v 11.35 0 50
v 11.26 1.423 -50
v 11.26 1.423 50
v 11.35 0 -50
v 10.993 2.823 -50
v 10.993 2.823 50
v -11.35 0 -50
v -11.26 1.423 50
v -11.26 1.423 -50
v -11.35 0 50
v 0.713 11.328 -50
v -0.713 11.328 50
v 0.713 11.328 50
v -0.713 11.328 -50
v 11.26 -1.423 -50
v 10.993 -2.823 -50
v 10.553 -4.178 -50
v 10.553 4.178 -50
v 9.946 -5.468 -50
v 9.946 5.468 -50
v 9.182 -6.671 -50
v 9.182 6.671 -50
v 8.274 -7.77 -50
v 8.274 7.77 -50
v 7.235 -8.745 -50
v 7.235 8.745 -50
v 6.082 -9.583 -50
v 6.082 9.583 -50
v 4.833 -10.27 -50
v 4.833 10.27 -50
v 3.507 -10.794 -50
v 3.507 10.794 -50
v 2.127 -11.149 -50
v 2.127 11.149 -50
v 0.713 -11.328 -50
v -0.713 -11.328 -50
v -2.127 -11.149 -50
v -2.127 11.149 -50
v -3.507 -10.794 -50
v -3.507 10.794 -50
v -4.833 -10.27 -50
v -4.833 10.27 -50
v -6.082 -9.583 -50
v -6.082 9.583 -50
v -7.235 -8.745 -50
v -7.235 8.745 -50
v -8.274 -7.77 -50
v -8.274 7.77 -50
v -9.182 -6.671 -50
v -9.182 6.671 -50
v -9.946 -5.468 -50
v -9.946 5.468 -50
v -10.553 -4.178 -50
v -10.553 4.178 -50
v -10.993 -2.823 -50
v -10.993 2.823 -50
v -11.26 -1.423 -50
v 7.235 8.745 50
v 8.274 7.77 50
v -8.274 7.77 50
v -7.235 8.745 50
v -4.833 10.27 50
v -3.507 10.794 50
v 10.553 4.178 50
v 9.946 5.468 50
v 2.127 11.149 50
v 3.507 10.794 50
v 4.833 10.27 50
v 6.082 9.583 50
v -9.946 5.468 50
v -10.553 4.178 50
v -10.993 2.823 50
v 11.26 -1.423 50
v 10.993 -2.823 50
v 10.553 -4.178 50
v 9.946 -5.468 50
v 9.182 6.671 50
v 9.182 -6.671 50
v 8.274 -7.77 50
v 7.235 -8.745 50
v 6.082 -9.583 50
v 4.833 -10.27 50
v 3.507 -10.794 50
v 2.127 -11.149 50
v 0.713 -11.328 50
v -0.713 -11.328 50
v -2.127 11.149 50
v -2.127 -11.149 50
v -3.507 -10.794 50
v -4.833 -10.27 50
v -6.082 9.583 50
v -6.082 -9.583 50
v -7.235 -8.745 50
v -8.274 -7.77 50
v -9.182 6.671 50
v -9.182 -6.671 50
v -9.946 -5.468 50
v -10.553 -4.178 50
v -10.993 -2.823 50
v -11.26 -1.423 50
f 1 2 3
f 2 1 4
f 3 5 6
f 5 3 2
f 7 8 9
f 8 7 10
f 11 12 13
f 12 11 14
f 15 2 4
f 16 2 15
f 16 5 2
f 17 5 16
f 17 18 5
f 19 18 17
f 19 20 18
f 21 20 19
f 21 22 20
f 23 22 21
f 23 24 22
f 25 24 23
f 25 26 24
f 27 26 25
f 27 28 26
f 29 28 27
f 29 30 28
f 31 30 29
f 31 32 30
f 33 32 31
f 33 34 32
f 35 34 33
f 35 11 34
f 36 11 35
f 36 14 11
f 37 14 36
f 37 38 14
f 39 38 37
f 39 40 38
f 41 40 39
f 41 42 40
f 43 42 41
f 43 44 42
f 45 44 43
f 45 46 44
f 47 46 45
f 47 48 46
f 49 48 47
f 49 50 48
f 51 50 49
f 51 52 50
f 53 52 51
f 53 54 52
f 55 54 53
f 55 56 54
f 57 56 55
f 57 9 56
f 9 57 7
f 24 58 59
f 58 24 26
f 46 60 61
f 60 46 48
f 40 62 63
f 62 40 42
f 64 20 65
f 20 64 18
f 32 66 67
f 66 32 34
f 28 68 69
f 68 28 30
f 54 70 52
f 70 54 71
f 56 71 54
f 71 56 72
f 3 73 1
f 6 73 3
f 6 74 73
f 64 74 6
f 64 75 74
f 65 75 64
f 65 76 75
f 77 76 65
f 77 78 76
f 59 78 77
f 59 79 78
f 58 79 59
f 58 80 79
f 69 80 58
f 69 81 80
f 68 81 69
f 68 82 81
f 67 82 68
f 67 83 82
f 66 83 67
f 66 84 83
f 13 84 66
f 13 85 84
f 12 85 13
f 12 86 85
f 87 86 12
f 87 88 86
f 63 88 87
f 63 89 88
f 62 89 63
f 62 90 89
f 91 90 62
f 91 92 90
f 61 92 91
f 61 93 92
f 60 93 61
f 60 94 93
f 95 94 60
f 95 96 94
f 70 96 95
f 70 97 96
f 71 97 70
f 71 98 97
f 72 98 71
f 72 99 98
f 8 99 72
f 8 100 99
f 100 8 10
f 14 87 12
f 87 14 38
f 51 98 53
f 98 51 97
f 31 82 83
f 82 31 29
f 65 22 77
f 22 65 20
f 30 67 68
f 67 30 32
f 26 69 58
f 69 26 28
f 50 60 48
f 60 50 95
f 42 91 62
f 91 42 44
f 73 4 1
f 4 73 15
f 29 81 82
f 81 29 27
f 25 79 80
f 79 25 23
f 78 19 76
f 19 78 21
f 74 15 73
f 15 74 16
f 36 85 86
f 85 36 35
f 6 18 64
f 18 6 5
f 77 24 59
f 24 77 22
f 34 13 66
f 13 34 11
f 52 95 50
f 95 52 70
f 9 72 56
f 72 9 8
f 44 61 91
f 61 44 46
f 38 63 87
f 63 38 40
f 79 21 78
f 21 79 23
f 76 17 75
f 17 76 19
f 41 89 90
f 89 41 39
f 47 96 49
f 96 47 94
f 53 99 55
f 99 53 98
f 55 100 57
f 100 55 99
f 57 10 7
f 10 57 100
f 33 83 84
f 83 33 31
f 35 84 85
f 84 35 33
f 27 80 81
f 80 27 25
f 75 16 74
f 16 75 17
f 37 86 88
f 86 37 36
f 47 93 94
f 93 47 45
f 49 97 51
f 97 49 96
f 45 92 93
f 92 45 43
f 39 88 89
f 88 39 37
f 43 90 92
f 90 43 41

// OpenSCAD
$fn = 50;


difference() {
	union() {
		translate(v = [0, 0, -50.0000000000]) {
			cylinder(h = 100, r = 11.3500000000);
		}
	}
	union() {
		translate(v = [0, 0, -100.0000000000]) {
			cylinder(h = 200, r = 0);
		}
	}
}
